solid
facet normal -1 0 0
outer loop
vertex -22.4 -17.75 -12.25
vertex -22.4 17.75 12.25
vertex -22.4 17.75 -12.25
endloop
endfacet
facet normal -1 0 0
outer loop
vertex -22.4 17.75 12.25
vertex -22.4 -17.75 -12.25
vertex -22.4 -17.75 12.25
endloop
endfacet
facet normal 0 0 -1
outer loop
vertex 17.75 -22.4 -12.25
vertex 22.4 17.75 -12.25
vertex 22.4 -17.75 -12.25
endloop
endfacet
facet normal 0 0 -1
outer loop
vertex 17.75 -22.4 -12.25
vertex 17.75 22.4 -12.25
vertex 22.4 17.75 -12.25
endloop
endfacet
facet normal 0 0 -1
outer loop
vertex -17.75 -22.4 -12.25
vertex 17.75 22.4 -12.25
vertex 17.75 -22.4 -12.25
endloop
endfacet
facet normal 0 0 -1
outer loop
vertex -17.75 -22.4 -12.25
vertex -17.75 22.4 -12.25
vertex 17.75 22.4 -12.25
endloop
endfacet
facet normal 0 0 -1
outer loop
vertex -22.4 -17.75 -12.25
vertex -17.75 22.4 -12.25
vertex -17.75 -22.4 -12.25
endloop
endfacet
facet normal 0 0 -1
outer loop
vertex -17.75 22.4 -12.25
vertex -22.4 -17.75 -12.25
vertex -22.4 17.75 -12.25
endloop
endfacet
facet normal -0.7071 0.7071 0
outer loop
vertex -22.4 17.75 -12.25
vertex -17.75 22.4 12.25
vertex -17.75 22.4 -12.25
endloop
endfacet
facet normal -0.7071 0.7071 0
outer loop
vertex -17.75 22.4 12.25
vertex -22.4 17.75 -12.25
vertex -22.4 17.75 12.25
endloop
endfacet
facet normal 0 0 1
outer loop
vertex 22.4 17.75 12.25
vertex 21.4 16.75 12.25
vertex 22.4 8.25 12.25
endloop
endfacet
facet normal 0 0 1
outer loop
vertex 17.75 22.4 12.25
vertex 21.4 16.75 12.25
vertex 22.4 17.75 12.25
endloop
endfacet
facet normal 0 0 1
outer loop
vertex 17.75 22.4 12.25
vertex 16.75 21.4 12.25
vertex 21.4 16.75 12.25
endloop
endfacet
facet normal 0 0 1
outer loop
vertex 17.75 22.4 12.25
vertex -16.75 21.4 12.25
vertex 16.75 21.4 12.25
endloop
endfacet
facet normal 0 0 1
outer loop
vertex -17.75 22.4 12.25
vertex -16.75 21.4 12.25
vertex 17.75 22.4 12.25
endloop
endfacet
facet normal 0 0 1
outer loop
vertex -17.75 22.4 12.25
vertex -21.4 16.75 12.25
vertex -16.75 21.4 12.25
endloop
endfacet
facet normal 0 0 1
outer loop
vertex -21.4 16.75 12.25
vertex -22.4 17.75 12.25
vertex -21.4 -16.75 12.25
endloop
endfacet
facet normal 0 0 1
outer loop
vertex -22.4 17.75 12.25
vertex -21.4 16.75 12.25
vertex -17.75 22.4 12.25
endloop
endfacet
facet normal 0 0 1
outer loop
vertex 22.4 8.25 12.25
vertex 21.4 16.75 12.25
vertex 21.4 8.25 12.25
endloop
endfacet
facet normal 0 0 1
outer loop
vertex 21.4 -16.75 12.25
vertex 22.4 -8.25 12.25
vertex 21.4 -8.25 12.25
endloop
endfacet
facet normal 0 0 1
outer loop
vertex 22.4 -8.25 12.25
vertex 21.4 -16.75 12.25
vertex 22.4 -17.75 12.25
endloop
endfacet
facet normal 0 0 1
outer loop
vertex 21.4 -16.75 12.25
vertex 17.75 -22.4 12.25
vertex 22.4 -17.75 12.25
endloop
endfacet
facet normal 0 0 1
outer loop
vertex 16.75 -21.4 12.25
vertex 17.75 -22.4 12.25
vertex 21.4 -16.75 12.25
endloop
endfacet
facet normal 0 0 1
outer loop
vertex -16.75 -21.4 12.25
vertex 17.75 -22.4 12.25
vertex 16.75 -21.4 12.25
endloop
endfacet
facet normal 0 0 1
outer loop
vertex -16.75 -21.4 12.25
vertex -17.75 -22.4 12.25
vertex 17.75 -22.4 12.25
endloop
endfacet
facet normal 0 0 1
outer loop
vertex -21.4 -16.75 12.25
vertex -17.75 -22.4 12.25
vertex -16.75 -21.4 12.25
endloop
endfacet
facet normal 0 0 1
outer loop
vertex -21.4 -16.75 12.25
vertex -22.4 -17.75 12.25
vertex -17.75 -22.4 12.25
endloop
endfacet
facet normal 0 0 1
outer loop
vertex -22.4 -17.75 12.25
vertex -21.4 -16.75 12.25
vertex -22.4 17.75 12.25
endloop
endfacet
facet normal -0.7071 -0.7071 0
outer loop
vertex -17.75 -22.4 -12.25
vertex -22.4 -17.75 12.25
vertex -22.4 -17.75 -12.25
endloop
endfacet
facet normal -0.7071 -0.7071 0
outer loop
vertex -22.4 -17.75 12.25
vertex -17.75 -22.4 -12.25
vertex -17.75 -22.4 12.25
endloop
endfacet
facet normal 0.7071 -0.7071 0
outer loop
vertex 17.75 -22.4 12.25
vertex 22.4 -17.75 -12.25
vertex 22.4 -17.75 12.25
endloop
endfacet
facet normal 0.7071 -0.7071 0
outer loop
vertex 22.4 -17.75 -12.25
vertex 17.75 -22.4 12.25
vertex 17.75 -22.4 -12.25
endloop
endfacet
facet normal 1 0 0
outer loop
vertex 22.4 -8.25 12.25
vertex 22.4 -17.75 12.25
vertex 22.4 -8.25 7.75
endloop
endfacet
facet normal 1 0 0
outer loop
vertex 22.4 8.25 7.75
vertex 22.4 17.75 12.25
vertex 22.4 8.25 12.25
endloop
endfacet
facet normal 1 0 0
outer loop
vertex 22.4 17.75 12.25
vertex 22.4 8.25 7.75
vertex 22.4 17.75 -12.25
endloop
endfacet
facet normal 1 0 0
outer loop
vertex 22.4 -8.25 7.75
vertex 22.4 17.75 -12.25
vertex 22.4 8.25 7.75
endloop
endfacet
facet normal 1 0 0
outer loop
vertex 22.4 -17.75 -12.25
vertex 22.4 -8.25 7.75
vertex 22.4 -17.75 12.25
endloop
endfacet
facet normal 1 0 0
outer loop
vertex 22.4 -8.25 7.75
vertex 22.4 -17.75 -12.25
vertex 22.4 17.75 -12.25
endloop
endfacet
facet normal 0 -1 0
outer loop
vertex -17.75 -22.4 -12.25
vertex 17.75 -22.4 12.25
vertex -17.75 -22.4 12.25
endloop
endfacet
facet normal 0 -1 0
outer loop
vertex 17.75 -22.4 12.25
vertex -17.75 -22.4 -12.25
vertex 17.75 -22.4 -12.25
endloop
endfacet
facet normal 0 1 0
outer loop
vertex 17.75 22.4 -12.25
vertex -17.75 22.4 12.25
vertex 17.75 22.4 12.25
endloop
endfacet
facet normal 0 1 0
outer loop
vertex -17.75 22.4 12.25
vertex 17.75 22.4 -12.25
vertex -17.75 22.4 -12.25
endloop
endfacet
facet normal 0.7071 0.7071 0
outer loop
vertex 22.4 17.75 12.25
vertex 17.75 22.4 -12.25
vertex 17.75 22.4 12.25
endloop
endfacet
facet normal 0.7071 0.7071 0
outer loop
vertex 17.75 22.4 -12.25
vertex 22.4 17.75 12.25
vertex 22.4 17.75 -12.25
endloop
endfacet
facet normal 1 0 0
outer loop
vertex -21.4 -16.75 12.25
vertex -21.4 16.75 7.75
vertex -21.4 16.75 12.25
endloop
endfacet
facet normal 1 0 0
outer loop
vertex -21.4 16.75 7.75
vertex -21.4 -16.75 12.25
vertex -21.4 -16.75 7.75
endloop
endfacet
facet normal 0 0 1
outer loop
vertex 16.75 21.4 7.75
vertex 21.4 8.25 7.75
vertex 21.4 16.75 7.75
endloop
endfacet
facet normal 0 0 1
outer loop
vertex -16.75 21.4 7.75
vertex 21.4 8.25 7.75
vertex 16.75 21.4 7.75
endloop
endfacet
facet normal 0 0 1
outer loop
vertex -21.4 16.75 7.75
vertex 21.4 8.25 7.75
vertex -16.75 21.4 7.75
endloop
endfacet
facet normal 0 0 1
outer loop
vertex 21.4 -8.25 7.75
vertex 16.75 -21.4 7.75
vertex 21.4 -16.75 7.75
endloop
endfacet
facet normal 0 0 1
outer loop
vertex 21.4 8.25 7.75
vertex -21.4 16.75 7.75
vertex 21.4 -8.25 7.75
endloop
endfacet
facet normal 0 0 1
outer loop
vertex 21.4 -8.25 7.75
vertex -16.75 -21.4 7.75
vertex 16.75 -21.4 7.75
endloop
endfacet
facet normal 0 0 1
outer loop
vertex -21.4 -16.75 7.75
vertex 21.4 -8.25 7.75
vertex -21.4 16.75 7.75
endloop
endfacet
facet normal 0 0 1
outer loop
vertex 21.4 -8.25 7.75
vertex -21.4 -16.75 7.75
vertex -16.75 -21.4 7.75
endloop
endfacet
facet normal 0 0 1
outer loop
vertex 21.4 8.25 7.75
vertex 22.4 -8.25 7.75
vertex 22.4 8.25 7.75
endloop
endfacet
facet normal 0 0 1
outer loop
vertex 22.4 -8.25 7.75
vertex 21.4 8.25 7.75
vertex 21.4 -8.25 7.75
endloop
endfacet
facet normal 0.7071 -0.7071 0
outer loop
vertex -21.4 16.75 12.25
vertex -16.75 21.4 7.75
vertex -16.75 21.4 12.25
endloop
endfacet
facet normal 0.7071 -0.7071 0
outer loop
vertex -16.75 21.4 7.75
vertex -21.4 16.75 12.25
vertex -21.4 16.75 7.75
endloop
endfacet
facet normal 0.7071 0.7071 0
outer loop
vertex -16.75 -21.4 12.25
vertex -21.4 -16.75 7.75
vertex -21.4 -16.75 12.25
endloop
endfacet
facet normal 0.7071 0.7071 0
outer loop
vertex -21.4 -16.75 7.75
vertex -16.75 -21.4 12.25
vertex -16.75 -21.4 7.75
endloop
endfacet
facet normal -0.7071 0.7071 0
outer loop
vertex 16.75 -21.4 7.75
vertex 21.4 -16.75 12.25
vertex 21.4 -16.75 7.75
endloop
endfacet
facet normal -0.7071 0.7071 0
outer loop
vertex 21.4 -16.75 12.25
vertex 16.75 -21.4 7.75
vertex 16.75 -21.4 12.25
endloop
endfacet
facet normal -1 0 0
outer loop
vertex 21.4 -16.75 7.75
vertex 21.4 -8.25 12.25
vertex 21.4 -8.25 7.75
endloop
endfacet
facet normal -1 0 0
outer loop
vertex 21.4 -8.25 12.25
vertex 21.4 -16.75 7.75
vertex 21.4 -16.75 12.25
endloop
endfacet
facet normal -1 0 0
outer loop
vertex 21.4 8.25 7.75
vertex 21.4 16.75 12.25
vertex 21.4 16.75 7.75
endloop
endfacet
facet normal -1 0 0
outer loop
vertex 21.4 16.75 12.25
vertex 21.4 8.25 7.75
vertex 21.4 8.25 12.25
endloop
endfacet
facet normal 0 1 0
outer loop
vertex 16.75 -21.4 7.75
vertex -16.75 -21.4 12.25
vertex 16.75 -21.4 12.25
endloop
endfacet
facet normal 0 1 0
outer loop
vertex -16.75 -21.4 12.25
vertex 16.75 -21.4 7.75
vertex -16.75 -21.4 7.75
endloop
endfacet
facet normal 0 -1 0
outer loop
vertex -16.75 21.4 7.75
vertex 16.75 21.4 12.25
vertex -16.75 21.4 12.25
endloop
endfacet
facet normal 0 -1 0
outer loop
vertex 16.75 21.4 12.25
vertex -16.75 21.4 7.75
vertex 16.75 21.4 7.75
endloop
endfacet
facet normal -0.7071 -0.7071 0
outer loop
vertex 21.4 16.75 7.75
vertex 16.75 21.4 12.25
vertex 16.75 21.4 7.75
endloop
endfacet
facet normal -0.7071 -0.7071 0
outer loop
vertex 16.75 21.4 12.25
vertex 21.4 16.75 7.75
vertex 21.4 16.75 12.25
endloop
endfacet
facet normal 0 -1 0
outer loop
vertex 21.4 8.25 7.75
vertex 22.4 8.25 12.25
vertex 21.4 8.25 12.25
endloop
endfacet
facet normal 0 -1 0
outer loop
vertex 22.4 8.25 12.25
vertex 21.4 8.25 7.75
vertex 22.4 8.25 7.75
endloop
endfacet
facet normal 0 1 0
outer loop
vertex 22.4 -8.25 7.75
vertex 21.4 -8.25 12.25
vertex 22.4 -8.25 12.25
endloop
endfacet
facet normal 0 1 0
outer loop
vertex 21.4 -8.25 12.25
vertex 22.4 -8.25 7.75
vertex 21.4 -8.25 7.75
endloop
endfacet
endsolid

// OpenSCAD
width = 42.3; // NEMA 17s are 42.3 x 42.3 x motor_height
chamfer_width = 33; // Set it to the same as width if there is no chamfer
support_height = 20.5;

skirt_height = 4;
thickness = 2; // Additional thickness (which primarily shows up as the skirt thickness in the model)

connector_width = 16;

shrink_buffer = 0.5; // Additional room to make it easier for the motor to fit into the shape
hole_buffer = 1; // Hole shapes need to be slightly bigger than the obejcts they're cutting through

difference(){
    motor_support(width + shrink_buffer, chamfer_width + shrink_buffer, support_height, skirt_height, thickness);
    translate([width / 2, 0, support_height / 2]) {
        connector_hole(connector_width + shrink_buffer, thickness, skirt_height);
    };
}

module connector_hole(width, thickness, height) {
    cube([thickness + hole_buffer, width, height + hole_buffer], center = true);
}

module motor_support(width, chamfer_width, support_height, skirt_height, thickness) {
    difference() {
        motor_body(width + thickness, chamfer_width + thickness, support_height + skirt_height);
        translate([0, 0, support_height / 2]) {
            motor_body(width, chamfer_width, skirt_height + hole_buffer);
        };
    };
}

module motor_body(width, chamfer_width, height) {
    hull() {
        cube([width, chamfer_width, height], center = true);
        rotate([0, 0, 90]){
            cube([width, chamfer_width, height], center = true);
        };
    };
}
